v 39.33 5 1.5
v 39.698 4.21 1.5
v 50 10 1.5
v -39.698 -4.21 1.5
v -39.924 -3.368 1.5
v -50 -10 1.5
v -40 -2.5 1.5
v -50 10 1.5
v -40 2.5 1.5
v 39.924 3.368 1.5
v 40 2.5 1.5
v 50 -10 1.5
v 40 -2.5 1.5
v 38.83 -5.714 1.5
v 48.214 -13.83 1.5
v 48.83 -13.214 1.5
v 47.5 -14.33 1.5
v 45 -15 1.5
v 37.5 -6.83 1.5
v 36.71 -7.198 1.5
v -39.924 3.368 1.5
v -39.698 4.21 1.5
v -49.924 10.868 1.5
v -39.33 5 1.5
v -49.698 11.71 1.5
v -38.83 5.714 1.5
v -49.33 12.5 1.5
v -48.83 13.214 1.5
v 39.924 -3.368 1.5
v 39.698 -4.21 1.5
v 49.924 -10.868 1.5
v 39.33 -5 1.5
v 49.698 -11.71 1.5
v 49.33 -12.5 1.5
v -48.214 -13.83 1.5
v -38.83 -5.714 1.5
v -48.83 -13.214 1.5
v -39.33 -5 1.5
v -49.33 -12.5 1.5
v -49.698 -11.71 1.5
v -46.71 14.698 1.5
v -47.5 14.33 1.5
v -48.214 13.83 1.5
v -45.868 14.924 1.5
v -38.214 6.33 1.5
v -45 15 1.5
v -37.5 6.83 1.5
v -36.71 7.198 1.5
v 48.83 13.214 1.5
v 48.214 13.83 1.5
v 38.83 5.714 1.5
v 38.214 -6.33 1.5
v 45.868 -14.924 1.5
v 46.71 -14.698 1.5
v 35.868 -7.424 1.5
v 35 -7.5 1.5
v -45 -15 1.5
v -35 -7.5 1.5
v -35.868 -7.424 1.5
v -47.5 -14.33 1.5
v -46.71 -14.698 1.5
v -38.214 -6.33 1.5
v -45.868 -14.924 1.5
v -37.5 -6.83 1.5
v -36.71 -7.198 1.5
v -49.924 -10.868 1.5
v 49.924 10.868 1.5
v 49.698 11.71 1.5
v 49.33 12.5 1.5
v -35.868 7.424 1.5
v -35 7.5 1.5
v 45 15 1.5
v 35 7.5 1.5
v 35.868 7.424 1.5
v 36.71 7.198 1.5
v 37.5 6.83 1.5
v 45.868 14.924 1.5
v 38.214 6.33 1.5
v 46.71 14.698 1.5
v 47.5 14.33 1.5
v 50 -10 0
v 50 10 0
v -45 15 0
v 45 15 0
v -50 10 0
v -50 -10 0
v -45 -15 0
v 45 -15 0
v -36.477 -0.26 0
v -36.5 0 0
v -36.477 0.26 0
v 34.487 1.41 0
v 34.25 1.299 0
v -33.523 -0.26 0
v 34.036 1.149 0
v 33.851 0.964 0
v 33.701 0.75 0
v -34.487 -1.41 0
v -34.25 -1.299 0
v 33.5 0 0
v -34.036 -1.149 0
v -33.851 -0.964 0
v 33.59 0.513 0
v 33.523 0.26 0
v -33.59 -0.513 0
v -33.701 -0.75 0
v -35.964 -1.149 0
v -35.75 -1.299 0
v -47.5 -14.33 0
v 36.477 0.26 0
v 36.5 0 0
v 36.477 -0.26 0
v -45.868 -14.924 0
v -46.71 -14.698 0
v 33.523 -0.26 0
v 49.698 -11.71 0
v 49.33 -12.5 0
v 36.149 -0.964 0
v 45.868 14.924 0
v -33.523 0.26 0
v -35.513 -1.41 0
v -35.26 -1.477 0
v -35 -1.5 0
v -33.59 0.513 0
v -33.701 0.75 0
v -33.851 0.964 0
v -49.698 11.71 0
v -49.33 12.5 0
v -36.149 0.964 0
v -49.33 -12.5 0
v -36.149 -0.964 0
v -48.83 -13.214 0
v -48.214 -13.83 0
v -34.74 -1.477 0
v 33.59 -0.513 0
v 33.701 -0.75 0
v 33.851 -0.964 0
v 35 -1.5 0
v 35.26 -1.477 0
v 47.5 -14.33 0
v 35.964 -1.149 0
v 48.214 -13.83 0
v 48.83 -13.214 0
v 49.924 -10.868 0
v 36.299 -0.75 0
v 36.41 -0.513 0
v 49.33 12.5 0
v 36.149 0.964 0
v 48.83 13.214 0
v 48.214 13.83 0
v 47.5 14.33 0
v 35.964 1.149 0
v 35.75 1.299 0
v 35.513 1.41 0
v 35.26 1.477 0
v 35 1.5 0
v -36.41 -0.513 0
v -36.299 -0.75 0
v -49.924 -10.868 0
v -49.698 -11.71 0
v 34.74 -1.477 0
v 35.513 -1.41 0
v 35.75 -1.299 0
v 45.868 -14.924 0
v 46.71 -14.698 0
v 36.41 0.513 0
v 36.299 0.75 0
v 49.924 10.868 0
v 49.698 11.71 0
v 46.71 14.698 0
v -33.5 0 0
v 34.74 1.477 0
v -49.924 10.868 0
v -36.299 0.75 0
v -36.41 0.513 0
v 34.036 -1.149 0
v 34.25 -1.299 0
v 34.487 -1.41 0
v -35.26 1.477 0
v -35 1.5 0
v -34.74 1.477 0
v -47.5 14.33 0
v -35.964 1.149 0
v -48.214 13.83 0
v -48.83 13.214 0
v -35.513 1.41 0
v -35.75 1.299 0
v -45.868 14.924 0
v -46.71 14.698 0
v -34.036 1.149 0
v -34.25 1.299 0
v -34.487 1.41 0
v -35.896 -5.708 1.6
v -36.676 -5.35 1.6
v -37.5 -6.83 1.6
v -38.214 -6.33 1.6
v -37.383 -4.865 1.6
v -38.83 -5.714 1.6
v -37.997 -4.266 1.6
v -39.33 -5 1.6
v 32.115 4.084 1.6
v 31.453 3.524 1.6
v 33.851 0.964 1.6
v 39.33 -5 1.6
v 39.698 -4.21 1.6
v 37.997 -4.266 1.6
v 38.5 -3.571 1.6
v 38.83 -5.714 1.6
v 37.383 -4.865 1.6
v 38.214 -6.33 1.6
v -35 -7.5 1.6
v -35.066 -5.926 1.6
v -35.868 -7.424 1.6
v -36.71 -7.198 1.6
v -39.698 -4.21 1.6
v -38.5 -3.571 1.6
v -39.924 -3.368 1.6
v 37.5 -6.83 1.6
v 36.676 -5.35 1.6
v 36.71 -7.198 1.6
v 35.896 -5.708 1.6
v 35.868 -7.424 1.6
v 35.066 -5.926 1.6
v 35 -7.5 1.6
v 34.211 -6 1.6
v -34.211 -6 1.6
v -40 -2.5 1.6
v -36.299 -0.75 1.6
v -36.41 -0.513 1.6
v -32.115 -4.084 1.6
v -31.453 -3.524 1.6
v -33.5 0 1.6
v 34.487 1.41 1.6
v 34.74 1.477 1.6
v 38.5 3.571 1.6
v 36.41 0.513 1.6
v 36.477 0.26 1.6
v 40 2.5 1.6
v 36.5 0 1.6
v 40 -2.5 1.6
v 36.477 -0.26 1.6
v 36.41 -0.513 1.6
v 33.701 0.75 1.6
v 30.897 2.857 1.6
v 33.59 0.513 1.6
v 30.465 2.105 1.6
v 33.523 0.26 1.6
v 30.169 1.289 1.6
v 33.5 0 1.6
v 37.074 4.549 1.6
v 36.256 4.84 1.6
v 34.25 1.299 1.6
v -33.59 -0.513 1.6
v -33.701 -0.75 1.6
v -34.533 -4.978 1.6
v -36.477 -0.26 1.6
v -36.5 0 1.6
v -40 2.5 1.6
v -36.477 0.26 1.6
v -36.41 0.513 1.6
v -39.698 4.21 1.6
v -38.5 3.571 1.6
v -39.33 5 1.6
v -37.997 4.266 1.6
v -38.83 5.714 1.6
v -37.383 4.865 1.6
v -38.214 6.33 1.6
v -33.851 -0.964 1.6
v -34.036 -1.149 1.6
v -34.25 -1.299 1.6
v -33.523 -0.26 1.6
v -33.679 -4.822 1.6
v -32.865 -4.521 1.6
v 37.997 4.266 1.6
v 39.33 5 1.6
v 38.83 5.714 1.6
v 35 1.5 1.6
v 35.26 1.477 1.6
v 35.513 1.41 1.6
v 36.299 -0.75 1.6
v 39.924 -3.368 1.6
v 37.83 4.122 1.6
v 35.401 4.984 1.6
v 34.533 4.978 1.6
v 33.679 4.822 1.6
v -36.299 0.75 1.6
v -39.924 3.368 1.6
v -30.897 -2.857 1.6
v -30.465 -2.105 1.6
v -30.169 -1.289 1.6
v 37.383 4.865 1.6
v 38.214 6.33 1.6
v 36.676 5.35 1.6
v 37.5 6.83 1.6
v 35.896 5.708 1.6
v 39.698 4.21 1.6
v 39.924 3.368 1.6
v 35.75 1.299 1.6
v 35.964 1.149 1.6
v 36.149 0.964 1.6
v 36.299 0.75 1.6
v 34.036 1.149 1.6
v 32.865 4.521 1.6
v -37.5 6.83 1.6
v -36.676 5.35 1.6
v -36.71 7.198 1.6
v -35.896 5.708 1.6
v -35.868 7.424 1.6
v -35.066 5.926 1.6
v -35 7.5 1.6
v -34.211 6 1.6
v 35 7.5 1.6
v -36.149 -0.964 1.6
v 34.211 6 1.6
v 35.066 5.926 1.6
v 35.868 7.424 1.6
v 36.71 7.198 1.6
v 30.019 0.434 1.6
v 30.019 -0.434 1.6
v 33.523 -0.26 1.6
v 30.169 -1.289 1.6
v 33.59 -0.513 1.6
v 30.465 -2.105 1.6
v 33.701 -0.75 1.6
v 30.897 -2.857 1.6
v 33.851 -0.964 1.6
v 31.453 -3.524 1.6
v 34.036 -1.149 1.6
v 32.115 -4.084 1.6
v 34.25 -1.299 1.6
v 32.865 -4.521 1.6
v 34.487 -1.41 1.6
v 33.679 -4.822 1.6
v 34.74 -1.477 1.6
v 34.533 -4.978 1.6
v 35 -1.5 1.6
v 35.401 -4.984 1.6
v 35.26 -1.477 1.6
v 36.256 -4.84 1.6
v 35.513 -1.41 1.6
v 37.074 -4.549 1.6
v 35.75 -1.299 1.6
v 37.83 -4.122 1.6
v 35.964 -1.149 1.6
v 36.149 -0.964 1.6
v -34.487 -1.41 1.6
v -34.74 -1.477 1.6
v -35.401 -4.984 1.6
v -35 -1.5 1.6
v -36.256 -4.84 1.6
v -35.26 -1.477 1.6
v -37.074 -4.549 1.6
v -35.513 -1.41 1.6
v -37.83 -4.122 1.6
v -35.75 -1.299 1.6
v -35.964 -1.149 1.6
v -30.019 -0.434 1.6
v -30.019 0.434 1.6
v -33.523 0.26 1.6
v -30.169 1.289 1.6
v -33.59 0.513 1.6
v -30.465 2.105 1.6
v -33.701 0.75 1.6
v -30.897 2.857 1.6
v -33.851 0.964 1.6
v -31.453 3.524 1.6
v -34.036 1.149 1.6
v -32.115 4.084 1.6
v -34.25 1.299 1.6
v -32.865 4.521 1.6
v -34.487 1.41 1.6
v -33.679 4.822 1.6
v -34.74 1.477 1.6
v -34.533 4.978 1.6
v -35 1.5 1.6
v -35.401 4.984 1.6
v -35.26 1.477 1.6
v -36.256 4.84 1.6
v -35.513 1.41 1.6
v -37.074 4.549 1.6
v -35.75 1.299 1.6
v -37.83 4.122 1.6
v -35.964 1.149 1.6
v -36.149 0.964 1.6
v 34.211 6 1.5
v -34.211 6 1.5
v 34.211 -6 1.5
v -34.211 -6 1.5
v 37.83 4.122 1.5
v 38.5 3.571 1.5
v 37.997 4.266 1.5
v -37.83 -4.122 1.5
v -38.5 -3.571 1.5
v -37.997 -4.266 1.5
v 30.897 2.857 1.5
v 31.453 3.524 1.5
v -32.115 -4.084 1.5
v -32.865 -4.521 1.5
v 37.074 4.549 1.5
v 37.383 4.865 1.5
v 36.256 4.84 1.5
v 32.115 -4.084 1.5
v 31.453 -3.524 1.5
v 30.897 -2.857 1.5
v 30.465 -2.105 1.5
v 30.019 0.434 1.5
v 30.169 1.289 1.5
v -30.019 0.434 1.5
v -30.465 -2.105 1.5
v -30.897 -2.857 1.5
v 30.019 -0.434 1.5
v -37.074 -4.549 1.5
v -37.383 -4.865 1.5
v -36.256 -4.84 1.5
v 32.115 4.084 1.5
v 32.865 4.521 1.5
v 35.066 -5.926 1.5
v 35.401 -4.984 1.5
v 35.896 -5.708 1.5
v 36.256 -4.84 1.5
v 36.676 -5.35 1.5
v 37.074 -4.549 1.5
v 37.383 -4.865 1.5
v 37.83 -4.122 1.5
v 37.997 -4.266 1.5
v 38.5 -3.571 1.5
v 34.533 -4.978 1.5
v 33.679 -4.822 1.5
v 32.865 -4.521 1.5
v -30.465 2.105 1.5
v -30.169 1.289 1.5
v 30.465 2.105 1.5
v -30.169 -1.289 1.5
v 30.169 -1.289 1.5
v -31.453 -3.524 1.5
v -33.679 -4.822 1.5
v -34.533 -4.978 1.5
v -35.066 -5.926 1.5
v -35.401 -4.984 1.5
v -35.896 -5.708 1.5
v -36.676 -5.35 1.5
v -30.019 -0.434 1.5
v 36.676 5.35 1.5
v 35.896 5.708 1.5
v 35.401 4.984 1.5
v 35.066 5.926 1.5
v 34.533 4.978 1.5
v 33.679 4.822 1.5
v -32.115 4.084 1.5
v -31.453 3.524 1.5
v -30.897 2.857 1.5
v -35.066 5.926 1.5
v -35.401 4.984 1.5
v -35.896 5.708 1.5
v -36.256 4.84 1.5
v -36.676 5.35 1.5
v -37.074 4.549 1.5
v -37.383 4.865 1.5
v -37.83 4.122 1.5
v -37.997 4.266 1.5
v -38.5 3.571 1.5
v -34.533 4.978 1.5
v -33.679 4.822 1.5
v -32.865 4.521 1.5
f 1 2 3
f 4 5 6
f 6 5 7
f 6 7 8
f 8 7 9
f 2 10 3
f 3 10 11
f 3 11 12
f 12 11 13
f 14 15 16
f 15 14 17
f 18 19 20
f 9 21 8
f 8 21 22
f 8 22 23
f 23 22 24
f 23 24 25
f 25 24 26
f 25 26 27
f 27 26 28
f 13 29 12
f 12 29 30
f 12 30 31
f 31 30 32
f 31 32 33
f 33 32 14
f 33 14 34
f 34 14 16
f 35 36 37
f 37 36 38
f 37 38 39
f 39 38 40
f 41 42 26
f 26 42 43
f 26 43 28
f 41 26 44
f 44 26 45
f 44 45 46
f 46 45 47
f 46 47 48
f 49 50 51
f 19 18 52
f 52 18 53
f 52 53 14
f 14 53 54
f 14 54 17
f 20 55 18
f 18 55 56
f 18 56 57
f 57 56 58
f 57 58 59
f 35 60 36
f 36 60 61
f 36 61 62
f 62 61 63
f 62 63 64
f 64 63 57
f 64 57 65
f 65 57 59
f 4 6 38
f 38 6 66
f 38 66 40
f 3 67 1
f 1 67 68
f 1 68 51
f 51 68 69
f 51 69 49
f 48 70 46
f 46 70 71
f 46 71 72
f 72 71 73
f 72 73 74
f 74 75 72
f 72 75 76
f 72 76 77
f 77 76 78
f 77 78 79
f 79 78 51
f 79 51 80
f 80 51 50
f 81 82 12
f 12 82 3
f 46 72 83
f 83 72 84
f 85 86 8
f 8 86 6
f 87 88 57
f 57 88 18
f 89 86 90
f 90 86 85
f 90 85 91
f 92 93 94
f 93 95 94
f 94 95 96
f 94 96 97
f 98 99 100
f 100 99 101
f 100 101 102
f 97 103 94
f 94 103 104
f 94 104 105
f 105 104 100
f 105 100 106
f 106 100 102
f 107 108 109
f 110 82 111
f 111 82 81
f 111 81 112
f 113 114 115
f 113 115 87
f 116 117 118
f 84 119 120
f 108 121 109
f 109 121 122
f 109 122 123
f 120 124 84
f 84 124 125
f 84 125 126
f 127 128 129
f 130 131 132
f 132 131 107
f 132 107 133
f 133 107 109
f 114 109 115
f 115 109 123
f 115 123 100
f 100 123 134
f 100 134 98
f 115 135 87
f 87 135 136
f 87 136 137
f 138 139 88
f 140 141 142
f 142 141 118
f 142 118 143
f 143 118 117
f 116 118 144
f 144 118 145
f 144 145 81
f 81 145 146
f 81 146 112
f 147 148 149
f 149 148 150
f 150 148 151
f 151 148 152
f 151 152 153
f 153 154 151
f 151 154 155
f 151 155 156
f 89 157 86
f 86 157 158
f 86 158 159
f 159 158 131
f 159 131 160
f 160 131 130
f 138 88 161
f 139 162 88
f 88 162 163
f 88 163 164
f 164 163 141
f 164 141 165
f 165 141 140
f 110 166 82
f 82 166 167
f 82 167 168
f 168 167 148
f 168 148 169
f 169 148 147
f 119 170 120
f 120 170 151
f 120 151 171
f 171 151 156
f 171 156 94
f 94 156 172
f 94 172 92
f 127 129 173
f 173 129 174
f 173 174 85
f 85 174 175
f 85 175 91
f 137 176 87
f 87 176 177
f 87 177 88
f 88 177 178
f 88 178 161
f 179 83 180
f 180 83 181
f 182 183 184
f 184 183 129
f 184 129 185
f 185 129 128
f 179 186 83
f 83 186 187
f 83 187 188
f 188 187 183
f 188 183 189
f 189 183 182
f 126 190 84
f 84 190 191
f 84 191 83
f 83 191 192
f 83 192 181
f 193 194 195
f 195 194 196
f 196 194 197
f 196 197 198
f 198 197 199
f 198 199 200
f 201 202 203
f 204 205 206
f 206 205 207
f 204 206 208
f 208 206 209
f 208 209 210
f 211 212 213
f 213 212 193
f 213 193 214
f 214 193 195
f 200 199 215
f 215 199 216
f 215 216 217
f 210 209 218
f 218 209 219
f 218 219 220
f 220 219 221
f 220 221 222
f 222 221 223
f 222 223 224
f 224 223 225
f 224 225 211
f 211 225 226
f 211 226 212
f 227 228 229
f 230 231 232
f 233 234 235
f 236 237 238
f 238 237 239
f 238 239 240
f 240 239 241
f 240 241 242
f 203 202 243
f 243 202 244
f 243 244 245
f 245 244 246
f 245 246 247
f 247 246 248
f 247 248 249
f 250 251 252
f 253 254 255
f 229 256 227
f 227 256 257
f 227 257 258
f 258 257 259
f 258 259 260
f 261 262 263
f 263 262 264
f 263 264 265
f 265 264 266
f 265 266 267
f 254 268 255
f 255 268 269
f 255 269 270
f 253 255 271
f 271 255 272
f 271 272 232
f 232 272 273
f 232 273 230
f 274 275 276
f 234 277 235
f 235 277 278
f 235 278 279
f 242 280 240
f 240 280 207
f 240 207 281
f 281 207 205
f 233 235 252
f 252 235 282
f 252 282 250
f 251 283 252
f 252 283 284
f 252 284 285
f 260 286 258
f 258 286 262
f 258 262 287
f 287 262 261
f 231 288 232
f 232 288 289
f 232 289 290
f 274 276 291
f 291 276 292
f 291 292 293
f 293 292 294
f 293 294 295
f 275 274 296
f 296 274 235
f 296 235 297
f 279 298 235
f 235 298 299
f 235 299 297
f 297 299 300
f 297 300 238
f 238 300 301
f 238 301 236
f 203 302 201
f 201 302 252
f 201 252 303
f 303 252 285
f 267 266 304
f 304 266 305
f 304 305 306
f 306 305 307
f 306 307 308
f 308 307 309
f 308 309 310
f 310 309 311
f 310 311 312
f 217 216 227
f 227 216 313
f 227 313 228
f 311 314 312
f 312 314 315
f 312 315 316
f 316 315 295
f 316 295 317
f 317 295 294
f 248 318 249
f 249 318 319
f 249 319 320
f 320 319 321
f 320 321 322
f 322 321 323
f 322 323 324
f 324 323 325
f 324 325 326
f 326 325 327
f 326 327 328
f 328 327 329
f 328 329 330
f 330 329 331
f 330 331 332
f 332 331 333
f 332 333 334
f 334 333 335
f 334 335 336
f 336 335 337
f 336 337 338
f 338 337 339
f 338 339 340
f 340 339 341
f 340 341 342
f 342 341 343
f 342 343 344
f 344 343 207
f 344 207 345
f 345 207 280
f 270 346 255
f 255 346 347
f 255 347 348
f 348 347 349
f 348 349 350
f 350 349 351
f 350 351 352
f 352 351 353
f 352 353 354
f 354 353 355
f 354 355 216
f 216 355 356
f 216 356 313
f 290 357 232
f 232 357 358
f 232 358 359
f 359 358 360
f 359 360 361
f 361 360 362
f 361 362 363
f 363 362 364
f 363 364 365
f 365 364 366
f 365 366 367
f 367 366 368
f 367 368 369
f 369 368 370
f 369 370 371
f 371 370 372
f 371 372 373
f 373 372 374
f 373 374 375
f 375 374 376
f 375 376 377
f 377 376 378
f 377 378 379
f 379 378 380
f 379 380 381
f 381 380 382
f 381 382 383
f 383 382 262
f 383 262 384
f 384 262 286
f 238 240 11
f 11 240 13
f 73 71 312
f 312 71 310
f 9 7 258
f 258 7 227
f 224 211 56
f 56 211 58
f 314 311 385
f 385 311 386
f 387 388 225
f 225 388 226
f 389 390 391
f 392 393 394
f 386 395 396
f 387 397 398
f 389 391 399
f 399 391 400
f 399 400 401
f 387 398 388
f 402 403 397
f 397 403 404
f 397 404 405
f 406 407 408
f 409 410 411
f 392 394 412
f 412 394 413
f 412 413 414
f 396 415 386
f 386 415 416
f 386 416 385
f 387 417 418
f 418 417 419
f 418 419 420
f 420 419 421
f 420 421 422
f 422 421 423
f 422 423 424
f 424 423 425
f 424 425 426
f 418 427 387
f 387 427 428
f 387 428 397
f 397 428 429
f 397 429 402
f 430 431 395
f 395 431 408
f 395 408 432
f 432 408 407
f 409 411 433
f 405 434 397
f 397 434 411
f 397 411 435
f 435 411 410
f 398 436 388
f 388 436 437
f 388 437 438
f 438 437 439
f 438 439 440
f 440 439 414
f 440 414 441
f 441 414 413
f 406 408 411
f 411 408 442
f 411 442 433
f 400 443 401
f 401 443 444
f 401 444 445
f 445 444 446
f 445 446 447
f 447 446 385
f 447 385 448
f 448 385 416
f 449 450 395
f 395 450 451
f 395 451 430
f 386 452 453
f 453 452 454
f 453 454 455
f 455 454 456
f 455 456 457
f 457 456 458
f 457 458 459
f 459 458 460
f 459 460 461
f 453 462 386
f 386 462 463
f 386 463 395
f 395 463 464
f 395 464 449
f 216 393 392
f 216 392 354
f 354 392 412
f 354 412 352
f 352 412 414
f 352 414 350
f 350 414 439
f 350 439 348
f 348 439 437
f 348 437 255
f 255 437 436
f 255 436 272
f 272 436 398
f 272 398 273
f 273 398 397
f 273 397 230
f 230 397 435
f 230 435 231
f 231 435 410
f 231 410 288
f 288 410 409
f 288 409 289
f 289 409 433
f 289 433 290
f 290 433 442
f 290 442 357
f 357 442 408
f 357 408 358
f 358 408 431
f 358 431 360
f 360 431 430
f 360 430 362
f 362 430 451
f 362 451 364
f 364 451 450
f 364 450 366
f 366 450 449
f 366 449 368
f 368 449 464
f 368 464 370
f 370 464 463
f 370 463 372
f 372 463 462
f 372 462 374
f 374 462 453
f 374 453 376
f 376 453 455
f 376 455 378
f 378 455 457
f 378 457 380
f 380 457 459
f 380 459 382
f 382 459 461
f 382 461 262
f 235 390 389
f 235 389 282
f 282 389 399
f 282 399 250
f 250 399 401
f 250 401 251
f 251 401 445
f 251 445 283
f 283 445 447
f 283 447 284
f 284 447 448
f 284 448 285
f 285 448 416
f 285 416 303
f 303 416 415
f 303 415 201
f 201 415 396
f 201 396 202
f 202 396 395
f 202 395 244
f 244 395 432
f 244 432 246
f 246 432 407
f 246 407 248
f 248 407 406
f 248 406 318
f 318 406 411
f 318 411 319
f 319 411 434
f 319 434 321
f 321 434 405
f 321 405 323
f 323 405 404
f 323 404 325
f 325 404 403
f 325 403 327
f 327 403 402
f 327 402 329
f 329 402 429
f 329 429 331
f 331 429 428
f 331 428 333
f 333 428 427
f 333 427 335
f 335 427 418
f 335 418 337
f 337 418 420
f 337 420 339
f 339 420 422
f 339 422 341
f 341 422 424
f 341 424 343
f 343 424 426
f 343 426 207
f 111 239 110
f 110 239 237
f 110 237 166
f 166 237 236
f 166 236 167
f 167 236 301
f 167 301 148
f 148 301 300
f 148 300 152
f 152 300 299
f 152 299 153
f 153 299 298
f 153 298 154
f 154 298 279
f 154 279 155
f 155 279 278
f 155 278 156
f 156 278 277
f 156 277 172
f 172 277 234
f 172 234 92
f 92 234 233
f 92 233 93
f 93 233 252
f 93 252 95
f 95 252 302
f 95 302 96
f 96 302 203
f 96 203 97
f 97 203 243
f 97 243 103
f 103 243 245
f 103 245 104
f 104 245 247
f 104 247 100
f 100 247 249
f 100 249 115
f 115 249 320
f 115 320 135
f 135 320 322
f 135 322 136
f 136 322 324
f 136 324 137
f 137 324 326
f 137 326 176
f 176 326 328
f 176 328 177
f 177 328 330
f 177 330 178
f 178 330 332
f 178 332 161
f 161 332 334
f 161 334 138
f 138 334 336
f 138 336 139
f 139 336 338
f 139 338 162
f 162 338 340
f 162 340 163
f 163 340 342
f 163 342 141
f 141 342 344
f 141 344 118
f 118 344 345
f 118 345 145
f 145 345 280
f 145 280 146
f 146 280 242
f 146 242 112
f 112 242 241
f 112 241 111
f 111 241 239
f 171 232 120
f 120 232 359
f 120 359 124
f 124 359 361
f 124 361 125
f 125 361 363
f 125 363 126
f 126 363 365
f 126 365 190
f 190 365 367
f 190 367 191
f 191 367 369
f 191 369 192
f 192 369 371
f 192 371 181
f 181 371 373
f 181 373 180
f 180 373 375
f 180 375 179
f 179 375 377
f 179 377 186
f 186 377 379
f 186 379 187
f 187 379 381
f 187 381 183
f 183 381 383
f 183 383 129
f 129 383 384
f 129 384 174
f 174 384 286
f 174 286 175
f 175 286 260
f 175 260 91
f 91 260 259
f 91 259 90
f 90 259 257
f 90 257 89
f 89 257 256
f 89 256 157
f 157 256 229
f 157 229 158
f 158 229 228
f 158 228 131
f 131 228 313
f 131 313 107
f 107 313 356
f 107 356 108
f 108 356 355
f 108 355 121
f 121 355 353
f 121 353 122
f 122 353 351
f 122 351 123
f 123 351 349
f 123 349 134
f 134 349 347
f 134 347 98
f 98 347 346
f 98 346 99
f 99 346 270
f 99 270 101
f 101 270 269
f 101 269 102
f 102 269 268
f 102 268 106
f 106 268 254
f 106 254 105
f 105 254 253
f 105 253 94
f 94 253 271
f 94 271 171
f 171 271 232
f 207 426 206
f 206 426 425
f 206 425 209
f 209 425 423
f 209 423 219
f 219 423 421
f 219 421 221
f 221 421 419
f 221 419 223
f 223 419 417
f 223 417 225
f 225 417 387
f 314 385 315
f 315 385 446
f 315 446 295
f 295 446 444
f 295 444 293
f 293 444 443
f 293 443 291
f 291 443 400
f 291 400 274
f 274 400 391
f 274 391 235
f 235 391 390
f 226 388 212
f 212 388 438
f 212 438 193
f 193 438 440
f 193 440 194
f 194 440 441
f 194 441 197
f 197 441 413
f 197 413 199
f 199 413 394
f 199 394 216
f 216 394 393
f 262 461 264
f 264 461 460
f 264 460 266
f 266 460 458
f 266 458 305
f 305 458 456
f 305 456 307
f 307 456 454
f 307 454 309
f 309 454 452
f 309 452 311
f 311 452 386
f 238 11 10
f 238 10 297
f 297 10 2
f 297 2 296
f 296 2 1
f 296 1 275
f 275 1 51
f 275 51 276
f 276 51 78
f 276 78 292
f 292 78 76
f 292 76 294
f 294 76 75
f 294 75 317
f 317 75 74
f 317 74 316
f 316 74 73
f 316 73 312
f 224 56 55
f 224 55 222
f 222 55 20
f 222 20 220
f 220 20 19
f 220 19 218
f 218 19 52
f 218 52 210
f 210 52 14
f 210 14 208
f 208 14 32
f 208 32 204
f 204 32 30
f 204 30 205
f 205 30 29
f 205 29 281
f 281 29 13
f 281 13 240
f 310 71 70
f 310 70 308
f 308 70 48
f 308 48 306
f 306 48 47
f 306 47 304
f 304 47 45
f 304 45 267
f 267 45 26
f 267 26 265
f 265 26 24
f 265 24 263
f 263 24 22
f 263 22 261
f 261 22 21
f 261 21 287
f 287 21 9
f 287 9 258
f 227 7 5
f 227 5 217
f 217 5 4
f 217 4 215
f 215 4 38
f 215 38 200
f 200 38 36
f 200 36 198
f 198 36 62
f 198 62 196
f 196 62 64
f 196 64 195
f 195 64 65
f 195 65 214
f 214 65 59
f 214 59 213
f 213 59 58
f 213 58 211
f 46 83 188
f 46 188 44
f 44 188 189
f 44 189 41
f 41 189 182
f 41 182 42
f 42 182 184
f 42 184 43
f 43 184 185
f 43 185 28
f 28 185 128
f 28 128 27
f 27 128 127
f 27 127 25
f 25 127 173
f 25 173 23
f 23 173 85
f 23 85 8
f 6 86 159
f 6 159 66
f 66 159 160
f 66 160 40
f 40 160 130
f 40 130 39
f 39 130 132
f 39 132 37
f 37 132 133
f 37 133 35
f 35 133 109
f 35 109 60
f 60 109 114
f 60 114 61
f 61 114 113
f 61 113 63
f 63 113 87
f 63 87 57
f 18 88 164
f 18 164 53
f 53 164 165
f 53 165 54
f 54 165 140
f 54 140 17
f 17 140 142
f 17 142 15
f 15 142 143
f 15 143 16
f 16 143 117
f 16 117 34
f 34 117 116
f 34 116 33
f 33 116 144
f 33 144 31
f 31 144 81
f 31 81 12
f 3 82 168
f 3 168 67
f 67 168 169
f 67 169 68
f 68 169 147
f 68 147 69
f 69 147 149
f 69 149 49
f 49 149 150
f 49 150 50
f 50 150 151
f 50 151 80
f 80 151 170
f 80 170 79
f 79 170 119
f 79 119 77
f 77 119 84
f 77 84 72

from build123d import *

# Parameters (mm, degrees)
SKETCH1_W               = 100
SKETCH1_H               = 30
BOSS_EXTRUDE1_DEPTH     = 1.5
SKETCH2_W               = 80
SKETCH2_H               = 15
SKETCH2_W_2             = 77
SKETCH2_H_2             = 12
EXTRUDE_THIN1_DEPTH     = 0.1
SKETCH3_R               = 5
BOSS_EXTRUDE2_DEPTH     = 0.1
CUT_EXTRUDE1_DEPTH      = 53.226047141
CUT_EXTRUDE1_DEPTH_BACK = 53.226047141
SKETCH4_R               = 1.5
FILLET1_R               = 5


with BuildPart() as part:
    # Sketch1 → Boss-Extrude1 (new body)
    with BuildSketch(Plane.XY):
        Rectangle(SKETCH1_W, SKETCH1_H)
    extrude(amount=BOSS_EXTRUDE1_DEPTH)

    # Sketch2 → Extrude-Thin1 (add)
    with BuildSketch(Plane.XY.offset(1.5)):
        Rectangle(SKETCH2_W, SKETCH2_H)
        Rectangle(SKETCH2_W_2, SKETCH2_H_2, mode=Mode.SUBTRACT)
    extrude(amount=EXTRUDE_THIN1_DEPTH)

    # Sketch3 → Boss-Extrude2 (add)
    with BuildSketch(Plane.XY.offset(1.5)):
        with Locations((-35, 0)):
            Circle(SKETCH3_R)
        with Locations((35, 0)):
            Circle(SKETCH3_R)
    extrude(amount=BOSS_EXTRUDE2_DEPTH)

    # Sketch4 → Cut-Extrude1 (cut, two sides: drawn at the far end of the back side and taken through both)
    with BuildSketch(Plane.XY.offset(1.6).offset(-CUT_EXTRUDE1_DEPTH_BACK)):
        with Locations((-35, 0)):
            Circle(SKETCH4_R)
        with Locations((35, 0)):
            Circle(SKETCH4_R)
    extrude(amount=CUT_EXTRUDE1_DEPTH + CUT_EXTRUDE1_DEPTH_BACK, mode=Mode.SUBTRACT)

    # Fillet1
    # the kernel refuses this fillet: 5 mm, written as the material it adds along each edge
    with BuildSketch(Plane(origin=(38.5, -6, 1.5), x_dir=(0, 1, 0), z_dir=(0, 0, 1))) as fillet1_piece_1:
        with BuildLine():
            CenterArc((5, 4.288522873), FILLET1_R, 180, 59.059821395)
            Line((0, 4.288522873), (0, 0))
            Line((0, 0), (2.429285786, 0))
        make_face()
    extrude(amount=0.1)
    with BuildSketch(Plane(origin=(38.5, 6, 1.5), x_dir=(0, -1, 0), z_dir=(0, 0, 1))) as fillet1_piece_2:
        with BuildLine():
            CenterArc((5, -4.288522873), FILLET1_R, 120.940178605, 59.059821395)
            Line((0, -4.288522873), (0, 0))
            Line((0, 0), (2.429285786, 0))
        make_face()
    extrude(amount=0.1)
    with BuildSketch(Plane(origin=(-38.5, -6, 1.5), x_dir=(1, 0, 0), z_dir=(0, 0, 1))) as fillet1_piece_3:
        with BuildLine():
            CenterArc((4.288522873, 5), FILLET1_R, 210.940178605, 59.059821395)
            Line((0, 2.429285786), (0, 0))
            Line((0, 0), (4.288522873, 0))
        make_face()
    extrude(amount=0.1)
    with BuildSketch(Plane(origin=(-38.5, 6, 1.5), x_dir=(1, 0, 0), z_dir=(0, 0, 1))) as fillet1_piece_4:
        with BuildLine():
            CenterArc((4.288522873, -5), FILLET1_R, 90, 59.059821395)
            Line((0, -2.429285786), (0, 0))
            Line((0, 0), (4.288522873, 0))
        make_face()
    extrude(amount=0.1)
    # the kernel refuses this fillet: 5 mm, written as the material it takes off along each edge
    with BuildSketch(Plane(origin=(40, 7.5, 1.5), x_dir=(0, -1, 0), z_dir=(0, 0, 1)), Plane(origin=(40, -7.5, 1.5), x_dir=(-1, 0, 0), z_dir=(0, 0, 1)), Plane(origin=(-40, 7.5, 1.5), x_dir=(1, 0, 0), z_dir=(0, 0, 1))) as fillet1_2_piece_1:
        with BuildLine():
            CenterArc((FILLET1_R, -FILLET1_R), FILLET1_R, 90, 90)
            Line((0, -FILLET1_R), (0, 0))
            Line((0, 0), (FILLET1_R, 0))
        make_face()
    extrude(amount=12.6, mode=Mode.SUBTRACT)
    with BuildSketch(Plane(origin=(-40, -7.5, 1.5), x_dir=(1, 0, 0), z_dir=(0, 0, 1))) as fillet1_2_piece_2:
        with BuildLine():
            CenterArc((FILLET1_R, FILLET1_R), FILLET1_R, 180, 90)
            Line((0, FILLET1_R), (0, 0))
            Line((0, 0), (FILLET1_R, 0))
        make_face()
    extrude(amount=12.6, mode=Mode.SUBTRACT)
    with BuildSketch(Plane(origin=(-50, 15, -12.5), x_dir=(1, 0, 0), z_dir=(0, 0, 1)), Plane(origin=(-50, -15, -12.5), x_dir=(0, 1, 0), z_dir=(0, 0, 1))) as fillet1_2_piece_3:
        with BuildLine():
            CenterArc((FILLET1_R, -FILLET1_R), FILLET1_R, 90, 90)
            Line((0, -FILLET1_R), (0, 0))
            Line((0, 0), (FILLET1_R, 0))
        make_face()
    extrude(amount=26.5, mode=Mode.SUBTRACT)
    with BuildSketch(Plane(origin=(50, -15, -12.5), x_dir=(0, 1, 0), z_dir=(0, 0, 1)), Plane(origin=(50, 15, -12.5), x_dir=(-1, 0, 0), z_dir=(0, 0, 1))) as fillet1_2_piece_4:
        with BuildLine():
            CenterArc((FILLET1_R, FILLET1_R), FILLET1_R, 180, 90)
            Line((0, FILLET1_R), (0, 0))
            Line((0, 0), (FILLET1_R, 0))
        make_face()
    extrude(amount=26.5, mode=Mode.SUBTRACT)


solid = part.part
